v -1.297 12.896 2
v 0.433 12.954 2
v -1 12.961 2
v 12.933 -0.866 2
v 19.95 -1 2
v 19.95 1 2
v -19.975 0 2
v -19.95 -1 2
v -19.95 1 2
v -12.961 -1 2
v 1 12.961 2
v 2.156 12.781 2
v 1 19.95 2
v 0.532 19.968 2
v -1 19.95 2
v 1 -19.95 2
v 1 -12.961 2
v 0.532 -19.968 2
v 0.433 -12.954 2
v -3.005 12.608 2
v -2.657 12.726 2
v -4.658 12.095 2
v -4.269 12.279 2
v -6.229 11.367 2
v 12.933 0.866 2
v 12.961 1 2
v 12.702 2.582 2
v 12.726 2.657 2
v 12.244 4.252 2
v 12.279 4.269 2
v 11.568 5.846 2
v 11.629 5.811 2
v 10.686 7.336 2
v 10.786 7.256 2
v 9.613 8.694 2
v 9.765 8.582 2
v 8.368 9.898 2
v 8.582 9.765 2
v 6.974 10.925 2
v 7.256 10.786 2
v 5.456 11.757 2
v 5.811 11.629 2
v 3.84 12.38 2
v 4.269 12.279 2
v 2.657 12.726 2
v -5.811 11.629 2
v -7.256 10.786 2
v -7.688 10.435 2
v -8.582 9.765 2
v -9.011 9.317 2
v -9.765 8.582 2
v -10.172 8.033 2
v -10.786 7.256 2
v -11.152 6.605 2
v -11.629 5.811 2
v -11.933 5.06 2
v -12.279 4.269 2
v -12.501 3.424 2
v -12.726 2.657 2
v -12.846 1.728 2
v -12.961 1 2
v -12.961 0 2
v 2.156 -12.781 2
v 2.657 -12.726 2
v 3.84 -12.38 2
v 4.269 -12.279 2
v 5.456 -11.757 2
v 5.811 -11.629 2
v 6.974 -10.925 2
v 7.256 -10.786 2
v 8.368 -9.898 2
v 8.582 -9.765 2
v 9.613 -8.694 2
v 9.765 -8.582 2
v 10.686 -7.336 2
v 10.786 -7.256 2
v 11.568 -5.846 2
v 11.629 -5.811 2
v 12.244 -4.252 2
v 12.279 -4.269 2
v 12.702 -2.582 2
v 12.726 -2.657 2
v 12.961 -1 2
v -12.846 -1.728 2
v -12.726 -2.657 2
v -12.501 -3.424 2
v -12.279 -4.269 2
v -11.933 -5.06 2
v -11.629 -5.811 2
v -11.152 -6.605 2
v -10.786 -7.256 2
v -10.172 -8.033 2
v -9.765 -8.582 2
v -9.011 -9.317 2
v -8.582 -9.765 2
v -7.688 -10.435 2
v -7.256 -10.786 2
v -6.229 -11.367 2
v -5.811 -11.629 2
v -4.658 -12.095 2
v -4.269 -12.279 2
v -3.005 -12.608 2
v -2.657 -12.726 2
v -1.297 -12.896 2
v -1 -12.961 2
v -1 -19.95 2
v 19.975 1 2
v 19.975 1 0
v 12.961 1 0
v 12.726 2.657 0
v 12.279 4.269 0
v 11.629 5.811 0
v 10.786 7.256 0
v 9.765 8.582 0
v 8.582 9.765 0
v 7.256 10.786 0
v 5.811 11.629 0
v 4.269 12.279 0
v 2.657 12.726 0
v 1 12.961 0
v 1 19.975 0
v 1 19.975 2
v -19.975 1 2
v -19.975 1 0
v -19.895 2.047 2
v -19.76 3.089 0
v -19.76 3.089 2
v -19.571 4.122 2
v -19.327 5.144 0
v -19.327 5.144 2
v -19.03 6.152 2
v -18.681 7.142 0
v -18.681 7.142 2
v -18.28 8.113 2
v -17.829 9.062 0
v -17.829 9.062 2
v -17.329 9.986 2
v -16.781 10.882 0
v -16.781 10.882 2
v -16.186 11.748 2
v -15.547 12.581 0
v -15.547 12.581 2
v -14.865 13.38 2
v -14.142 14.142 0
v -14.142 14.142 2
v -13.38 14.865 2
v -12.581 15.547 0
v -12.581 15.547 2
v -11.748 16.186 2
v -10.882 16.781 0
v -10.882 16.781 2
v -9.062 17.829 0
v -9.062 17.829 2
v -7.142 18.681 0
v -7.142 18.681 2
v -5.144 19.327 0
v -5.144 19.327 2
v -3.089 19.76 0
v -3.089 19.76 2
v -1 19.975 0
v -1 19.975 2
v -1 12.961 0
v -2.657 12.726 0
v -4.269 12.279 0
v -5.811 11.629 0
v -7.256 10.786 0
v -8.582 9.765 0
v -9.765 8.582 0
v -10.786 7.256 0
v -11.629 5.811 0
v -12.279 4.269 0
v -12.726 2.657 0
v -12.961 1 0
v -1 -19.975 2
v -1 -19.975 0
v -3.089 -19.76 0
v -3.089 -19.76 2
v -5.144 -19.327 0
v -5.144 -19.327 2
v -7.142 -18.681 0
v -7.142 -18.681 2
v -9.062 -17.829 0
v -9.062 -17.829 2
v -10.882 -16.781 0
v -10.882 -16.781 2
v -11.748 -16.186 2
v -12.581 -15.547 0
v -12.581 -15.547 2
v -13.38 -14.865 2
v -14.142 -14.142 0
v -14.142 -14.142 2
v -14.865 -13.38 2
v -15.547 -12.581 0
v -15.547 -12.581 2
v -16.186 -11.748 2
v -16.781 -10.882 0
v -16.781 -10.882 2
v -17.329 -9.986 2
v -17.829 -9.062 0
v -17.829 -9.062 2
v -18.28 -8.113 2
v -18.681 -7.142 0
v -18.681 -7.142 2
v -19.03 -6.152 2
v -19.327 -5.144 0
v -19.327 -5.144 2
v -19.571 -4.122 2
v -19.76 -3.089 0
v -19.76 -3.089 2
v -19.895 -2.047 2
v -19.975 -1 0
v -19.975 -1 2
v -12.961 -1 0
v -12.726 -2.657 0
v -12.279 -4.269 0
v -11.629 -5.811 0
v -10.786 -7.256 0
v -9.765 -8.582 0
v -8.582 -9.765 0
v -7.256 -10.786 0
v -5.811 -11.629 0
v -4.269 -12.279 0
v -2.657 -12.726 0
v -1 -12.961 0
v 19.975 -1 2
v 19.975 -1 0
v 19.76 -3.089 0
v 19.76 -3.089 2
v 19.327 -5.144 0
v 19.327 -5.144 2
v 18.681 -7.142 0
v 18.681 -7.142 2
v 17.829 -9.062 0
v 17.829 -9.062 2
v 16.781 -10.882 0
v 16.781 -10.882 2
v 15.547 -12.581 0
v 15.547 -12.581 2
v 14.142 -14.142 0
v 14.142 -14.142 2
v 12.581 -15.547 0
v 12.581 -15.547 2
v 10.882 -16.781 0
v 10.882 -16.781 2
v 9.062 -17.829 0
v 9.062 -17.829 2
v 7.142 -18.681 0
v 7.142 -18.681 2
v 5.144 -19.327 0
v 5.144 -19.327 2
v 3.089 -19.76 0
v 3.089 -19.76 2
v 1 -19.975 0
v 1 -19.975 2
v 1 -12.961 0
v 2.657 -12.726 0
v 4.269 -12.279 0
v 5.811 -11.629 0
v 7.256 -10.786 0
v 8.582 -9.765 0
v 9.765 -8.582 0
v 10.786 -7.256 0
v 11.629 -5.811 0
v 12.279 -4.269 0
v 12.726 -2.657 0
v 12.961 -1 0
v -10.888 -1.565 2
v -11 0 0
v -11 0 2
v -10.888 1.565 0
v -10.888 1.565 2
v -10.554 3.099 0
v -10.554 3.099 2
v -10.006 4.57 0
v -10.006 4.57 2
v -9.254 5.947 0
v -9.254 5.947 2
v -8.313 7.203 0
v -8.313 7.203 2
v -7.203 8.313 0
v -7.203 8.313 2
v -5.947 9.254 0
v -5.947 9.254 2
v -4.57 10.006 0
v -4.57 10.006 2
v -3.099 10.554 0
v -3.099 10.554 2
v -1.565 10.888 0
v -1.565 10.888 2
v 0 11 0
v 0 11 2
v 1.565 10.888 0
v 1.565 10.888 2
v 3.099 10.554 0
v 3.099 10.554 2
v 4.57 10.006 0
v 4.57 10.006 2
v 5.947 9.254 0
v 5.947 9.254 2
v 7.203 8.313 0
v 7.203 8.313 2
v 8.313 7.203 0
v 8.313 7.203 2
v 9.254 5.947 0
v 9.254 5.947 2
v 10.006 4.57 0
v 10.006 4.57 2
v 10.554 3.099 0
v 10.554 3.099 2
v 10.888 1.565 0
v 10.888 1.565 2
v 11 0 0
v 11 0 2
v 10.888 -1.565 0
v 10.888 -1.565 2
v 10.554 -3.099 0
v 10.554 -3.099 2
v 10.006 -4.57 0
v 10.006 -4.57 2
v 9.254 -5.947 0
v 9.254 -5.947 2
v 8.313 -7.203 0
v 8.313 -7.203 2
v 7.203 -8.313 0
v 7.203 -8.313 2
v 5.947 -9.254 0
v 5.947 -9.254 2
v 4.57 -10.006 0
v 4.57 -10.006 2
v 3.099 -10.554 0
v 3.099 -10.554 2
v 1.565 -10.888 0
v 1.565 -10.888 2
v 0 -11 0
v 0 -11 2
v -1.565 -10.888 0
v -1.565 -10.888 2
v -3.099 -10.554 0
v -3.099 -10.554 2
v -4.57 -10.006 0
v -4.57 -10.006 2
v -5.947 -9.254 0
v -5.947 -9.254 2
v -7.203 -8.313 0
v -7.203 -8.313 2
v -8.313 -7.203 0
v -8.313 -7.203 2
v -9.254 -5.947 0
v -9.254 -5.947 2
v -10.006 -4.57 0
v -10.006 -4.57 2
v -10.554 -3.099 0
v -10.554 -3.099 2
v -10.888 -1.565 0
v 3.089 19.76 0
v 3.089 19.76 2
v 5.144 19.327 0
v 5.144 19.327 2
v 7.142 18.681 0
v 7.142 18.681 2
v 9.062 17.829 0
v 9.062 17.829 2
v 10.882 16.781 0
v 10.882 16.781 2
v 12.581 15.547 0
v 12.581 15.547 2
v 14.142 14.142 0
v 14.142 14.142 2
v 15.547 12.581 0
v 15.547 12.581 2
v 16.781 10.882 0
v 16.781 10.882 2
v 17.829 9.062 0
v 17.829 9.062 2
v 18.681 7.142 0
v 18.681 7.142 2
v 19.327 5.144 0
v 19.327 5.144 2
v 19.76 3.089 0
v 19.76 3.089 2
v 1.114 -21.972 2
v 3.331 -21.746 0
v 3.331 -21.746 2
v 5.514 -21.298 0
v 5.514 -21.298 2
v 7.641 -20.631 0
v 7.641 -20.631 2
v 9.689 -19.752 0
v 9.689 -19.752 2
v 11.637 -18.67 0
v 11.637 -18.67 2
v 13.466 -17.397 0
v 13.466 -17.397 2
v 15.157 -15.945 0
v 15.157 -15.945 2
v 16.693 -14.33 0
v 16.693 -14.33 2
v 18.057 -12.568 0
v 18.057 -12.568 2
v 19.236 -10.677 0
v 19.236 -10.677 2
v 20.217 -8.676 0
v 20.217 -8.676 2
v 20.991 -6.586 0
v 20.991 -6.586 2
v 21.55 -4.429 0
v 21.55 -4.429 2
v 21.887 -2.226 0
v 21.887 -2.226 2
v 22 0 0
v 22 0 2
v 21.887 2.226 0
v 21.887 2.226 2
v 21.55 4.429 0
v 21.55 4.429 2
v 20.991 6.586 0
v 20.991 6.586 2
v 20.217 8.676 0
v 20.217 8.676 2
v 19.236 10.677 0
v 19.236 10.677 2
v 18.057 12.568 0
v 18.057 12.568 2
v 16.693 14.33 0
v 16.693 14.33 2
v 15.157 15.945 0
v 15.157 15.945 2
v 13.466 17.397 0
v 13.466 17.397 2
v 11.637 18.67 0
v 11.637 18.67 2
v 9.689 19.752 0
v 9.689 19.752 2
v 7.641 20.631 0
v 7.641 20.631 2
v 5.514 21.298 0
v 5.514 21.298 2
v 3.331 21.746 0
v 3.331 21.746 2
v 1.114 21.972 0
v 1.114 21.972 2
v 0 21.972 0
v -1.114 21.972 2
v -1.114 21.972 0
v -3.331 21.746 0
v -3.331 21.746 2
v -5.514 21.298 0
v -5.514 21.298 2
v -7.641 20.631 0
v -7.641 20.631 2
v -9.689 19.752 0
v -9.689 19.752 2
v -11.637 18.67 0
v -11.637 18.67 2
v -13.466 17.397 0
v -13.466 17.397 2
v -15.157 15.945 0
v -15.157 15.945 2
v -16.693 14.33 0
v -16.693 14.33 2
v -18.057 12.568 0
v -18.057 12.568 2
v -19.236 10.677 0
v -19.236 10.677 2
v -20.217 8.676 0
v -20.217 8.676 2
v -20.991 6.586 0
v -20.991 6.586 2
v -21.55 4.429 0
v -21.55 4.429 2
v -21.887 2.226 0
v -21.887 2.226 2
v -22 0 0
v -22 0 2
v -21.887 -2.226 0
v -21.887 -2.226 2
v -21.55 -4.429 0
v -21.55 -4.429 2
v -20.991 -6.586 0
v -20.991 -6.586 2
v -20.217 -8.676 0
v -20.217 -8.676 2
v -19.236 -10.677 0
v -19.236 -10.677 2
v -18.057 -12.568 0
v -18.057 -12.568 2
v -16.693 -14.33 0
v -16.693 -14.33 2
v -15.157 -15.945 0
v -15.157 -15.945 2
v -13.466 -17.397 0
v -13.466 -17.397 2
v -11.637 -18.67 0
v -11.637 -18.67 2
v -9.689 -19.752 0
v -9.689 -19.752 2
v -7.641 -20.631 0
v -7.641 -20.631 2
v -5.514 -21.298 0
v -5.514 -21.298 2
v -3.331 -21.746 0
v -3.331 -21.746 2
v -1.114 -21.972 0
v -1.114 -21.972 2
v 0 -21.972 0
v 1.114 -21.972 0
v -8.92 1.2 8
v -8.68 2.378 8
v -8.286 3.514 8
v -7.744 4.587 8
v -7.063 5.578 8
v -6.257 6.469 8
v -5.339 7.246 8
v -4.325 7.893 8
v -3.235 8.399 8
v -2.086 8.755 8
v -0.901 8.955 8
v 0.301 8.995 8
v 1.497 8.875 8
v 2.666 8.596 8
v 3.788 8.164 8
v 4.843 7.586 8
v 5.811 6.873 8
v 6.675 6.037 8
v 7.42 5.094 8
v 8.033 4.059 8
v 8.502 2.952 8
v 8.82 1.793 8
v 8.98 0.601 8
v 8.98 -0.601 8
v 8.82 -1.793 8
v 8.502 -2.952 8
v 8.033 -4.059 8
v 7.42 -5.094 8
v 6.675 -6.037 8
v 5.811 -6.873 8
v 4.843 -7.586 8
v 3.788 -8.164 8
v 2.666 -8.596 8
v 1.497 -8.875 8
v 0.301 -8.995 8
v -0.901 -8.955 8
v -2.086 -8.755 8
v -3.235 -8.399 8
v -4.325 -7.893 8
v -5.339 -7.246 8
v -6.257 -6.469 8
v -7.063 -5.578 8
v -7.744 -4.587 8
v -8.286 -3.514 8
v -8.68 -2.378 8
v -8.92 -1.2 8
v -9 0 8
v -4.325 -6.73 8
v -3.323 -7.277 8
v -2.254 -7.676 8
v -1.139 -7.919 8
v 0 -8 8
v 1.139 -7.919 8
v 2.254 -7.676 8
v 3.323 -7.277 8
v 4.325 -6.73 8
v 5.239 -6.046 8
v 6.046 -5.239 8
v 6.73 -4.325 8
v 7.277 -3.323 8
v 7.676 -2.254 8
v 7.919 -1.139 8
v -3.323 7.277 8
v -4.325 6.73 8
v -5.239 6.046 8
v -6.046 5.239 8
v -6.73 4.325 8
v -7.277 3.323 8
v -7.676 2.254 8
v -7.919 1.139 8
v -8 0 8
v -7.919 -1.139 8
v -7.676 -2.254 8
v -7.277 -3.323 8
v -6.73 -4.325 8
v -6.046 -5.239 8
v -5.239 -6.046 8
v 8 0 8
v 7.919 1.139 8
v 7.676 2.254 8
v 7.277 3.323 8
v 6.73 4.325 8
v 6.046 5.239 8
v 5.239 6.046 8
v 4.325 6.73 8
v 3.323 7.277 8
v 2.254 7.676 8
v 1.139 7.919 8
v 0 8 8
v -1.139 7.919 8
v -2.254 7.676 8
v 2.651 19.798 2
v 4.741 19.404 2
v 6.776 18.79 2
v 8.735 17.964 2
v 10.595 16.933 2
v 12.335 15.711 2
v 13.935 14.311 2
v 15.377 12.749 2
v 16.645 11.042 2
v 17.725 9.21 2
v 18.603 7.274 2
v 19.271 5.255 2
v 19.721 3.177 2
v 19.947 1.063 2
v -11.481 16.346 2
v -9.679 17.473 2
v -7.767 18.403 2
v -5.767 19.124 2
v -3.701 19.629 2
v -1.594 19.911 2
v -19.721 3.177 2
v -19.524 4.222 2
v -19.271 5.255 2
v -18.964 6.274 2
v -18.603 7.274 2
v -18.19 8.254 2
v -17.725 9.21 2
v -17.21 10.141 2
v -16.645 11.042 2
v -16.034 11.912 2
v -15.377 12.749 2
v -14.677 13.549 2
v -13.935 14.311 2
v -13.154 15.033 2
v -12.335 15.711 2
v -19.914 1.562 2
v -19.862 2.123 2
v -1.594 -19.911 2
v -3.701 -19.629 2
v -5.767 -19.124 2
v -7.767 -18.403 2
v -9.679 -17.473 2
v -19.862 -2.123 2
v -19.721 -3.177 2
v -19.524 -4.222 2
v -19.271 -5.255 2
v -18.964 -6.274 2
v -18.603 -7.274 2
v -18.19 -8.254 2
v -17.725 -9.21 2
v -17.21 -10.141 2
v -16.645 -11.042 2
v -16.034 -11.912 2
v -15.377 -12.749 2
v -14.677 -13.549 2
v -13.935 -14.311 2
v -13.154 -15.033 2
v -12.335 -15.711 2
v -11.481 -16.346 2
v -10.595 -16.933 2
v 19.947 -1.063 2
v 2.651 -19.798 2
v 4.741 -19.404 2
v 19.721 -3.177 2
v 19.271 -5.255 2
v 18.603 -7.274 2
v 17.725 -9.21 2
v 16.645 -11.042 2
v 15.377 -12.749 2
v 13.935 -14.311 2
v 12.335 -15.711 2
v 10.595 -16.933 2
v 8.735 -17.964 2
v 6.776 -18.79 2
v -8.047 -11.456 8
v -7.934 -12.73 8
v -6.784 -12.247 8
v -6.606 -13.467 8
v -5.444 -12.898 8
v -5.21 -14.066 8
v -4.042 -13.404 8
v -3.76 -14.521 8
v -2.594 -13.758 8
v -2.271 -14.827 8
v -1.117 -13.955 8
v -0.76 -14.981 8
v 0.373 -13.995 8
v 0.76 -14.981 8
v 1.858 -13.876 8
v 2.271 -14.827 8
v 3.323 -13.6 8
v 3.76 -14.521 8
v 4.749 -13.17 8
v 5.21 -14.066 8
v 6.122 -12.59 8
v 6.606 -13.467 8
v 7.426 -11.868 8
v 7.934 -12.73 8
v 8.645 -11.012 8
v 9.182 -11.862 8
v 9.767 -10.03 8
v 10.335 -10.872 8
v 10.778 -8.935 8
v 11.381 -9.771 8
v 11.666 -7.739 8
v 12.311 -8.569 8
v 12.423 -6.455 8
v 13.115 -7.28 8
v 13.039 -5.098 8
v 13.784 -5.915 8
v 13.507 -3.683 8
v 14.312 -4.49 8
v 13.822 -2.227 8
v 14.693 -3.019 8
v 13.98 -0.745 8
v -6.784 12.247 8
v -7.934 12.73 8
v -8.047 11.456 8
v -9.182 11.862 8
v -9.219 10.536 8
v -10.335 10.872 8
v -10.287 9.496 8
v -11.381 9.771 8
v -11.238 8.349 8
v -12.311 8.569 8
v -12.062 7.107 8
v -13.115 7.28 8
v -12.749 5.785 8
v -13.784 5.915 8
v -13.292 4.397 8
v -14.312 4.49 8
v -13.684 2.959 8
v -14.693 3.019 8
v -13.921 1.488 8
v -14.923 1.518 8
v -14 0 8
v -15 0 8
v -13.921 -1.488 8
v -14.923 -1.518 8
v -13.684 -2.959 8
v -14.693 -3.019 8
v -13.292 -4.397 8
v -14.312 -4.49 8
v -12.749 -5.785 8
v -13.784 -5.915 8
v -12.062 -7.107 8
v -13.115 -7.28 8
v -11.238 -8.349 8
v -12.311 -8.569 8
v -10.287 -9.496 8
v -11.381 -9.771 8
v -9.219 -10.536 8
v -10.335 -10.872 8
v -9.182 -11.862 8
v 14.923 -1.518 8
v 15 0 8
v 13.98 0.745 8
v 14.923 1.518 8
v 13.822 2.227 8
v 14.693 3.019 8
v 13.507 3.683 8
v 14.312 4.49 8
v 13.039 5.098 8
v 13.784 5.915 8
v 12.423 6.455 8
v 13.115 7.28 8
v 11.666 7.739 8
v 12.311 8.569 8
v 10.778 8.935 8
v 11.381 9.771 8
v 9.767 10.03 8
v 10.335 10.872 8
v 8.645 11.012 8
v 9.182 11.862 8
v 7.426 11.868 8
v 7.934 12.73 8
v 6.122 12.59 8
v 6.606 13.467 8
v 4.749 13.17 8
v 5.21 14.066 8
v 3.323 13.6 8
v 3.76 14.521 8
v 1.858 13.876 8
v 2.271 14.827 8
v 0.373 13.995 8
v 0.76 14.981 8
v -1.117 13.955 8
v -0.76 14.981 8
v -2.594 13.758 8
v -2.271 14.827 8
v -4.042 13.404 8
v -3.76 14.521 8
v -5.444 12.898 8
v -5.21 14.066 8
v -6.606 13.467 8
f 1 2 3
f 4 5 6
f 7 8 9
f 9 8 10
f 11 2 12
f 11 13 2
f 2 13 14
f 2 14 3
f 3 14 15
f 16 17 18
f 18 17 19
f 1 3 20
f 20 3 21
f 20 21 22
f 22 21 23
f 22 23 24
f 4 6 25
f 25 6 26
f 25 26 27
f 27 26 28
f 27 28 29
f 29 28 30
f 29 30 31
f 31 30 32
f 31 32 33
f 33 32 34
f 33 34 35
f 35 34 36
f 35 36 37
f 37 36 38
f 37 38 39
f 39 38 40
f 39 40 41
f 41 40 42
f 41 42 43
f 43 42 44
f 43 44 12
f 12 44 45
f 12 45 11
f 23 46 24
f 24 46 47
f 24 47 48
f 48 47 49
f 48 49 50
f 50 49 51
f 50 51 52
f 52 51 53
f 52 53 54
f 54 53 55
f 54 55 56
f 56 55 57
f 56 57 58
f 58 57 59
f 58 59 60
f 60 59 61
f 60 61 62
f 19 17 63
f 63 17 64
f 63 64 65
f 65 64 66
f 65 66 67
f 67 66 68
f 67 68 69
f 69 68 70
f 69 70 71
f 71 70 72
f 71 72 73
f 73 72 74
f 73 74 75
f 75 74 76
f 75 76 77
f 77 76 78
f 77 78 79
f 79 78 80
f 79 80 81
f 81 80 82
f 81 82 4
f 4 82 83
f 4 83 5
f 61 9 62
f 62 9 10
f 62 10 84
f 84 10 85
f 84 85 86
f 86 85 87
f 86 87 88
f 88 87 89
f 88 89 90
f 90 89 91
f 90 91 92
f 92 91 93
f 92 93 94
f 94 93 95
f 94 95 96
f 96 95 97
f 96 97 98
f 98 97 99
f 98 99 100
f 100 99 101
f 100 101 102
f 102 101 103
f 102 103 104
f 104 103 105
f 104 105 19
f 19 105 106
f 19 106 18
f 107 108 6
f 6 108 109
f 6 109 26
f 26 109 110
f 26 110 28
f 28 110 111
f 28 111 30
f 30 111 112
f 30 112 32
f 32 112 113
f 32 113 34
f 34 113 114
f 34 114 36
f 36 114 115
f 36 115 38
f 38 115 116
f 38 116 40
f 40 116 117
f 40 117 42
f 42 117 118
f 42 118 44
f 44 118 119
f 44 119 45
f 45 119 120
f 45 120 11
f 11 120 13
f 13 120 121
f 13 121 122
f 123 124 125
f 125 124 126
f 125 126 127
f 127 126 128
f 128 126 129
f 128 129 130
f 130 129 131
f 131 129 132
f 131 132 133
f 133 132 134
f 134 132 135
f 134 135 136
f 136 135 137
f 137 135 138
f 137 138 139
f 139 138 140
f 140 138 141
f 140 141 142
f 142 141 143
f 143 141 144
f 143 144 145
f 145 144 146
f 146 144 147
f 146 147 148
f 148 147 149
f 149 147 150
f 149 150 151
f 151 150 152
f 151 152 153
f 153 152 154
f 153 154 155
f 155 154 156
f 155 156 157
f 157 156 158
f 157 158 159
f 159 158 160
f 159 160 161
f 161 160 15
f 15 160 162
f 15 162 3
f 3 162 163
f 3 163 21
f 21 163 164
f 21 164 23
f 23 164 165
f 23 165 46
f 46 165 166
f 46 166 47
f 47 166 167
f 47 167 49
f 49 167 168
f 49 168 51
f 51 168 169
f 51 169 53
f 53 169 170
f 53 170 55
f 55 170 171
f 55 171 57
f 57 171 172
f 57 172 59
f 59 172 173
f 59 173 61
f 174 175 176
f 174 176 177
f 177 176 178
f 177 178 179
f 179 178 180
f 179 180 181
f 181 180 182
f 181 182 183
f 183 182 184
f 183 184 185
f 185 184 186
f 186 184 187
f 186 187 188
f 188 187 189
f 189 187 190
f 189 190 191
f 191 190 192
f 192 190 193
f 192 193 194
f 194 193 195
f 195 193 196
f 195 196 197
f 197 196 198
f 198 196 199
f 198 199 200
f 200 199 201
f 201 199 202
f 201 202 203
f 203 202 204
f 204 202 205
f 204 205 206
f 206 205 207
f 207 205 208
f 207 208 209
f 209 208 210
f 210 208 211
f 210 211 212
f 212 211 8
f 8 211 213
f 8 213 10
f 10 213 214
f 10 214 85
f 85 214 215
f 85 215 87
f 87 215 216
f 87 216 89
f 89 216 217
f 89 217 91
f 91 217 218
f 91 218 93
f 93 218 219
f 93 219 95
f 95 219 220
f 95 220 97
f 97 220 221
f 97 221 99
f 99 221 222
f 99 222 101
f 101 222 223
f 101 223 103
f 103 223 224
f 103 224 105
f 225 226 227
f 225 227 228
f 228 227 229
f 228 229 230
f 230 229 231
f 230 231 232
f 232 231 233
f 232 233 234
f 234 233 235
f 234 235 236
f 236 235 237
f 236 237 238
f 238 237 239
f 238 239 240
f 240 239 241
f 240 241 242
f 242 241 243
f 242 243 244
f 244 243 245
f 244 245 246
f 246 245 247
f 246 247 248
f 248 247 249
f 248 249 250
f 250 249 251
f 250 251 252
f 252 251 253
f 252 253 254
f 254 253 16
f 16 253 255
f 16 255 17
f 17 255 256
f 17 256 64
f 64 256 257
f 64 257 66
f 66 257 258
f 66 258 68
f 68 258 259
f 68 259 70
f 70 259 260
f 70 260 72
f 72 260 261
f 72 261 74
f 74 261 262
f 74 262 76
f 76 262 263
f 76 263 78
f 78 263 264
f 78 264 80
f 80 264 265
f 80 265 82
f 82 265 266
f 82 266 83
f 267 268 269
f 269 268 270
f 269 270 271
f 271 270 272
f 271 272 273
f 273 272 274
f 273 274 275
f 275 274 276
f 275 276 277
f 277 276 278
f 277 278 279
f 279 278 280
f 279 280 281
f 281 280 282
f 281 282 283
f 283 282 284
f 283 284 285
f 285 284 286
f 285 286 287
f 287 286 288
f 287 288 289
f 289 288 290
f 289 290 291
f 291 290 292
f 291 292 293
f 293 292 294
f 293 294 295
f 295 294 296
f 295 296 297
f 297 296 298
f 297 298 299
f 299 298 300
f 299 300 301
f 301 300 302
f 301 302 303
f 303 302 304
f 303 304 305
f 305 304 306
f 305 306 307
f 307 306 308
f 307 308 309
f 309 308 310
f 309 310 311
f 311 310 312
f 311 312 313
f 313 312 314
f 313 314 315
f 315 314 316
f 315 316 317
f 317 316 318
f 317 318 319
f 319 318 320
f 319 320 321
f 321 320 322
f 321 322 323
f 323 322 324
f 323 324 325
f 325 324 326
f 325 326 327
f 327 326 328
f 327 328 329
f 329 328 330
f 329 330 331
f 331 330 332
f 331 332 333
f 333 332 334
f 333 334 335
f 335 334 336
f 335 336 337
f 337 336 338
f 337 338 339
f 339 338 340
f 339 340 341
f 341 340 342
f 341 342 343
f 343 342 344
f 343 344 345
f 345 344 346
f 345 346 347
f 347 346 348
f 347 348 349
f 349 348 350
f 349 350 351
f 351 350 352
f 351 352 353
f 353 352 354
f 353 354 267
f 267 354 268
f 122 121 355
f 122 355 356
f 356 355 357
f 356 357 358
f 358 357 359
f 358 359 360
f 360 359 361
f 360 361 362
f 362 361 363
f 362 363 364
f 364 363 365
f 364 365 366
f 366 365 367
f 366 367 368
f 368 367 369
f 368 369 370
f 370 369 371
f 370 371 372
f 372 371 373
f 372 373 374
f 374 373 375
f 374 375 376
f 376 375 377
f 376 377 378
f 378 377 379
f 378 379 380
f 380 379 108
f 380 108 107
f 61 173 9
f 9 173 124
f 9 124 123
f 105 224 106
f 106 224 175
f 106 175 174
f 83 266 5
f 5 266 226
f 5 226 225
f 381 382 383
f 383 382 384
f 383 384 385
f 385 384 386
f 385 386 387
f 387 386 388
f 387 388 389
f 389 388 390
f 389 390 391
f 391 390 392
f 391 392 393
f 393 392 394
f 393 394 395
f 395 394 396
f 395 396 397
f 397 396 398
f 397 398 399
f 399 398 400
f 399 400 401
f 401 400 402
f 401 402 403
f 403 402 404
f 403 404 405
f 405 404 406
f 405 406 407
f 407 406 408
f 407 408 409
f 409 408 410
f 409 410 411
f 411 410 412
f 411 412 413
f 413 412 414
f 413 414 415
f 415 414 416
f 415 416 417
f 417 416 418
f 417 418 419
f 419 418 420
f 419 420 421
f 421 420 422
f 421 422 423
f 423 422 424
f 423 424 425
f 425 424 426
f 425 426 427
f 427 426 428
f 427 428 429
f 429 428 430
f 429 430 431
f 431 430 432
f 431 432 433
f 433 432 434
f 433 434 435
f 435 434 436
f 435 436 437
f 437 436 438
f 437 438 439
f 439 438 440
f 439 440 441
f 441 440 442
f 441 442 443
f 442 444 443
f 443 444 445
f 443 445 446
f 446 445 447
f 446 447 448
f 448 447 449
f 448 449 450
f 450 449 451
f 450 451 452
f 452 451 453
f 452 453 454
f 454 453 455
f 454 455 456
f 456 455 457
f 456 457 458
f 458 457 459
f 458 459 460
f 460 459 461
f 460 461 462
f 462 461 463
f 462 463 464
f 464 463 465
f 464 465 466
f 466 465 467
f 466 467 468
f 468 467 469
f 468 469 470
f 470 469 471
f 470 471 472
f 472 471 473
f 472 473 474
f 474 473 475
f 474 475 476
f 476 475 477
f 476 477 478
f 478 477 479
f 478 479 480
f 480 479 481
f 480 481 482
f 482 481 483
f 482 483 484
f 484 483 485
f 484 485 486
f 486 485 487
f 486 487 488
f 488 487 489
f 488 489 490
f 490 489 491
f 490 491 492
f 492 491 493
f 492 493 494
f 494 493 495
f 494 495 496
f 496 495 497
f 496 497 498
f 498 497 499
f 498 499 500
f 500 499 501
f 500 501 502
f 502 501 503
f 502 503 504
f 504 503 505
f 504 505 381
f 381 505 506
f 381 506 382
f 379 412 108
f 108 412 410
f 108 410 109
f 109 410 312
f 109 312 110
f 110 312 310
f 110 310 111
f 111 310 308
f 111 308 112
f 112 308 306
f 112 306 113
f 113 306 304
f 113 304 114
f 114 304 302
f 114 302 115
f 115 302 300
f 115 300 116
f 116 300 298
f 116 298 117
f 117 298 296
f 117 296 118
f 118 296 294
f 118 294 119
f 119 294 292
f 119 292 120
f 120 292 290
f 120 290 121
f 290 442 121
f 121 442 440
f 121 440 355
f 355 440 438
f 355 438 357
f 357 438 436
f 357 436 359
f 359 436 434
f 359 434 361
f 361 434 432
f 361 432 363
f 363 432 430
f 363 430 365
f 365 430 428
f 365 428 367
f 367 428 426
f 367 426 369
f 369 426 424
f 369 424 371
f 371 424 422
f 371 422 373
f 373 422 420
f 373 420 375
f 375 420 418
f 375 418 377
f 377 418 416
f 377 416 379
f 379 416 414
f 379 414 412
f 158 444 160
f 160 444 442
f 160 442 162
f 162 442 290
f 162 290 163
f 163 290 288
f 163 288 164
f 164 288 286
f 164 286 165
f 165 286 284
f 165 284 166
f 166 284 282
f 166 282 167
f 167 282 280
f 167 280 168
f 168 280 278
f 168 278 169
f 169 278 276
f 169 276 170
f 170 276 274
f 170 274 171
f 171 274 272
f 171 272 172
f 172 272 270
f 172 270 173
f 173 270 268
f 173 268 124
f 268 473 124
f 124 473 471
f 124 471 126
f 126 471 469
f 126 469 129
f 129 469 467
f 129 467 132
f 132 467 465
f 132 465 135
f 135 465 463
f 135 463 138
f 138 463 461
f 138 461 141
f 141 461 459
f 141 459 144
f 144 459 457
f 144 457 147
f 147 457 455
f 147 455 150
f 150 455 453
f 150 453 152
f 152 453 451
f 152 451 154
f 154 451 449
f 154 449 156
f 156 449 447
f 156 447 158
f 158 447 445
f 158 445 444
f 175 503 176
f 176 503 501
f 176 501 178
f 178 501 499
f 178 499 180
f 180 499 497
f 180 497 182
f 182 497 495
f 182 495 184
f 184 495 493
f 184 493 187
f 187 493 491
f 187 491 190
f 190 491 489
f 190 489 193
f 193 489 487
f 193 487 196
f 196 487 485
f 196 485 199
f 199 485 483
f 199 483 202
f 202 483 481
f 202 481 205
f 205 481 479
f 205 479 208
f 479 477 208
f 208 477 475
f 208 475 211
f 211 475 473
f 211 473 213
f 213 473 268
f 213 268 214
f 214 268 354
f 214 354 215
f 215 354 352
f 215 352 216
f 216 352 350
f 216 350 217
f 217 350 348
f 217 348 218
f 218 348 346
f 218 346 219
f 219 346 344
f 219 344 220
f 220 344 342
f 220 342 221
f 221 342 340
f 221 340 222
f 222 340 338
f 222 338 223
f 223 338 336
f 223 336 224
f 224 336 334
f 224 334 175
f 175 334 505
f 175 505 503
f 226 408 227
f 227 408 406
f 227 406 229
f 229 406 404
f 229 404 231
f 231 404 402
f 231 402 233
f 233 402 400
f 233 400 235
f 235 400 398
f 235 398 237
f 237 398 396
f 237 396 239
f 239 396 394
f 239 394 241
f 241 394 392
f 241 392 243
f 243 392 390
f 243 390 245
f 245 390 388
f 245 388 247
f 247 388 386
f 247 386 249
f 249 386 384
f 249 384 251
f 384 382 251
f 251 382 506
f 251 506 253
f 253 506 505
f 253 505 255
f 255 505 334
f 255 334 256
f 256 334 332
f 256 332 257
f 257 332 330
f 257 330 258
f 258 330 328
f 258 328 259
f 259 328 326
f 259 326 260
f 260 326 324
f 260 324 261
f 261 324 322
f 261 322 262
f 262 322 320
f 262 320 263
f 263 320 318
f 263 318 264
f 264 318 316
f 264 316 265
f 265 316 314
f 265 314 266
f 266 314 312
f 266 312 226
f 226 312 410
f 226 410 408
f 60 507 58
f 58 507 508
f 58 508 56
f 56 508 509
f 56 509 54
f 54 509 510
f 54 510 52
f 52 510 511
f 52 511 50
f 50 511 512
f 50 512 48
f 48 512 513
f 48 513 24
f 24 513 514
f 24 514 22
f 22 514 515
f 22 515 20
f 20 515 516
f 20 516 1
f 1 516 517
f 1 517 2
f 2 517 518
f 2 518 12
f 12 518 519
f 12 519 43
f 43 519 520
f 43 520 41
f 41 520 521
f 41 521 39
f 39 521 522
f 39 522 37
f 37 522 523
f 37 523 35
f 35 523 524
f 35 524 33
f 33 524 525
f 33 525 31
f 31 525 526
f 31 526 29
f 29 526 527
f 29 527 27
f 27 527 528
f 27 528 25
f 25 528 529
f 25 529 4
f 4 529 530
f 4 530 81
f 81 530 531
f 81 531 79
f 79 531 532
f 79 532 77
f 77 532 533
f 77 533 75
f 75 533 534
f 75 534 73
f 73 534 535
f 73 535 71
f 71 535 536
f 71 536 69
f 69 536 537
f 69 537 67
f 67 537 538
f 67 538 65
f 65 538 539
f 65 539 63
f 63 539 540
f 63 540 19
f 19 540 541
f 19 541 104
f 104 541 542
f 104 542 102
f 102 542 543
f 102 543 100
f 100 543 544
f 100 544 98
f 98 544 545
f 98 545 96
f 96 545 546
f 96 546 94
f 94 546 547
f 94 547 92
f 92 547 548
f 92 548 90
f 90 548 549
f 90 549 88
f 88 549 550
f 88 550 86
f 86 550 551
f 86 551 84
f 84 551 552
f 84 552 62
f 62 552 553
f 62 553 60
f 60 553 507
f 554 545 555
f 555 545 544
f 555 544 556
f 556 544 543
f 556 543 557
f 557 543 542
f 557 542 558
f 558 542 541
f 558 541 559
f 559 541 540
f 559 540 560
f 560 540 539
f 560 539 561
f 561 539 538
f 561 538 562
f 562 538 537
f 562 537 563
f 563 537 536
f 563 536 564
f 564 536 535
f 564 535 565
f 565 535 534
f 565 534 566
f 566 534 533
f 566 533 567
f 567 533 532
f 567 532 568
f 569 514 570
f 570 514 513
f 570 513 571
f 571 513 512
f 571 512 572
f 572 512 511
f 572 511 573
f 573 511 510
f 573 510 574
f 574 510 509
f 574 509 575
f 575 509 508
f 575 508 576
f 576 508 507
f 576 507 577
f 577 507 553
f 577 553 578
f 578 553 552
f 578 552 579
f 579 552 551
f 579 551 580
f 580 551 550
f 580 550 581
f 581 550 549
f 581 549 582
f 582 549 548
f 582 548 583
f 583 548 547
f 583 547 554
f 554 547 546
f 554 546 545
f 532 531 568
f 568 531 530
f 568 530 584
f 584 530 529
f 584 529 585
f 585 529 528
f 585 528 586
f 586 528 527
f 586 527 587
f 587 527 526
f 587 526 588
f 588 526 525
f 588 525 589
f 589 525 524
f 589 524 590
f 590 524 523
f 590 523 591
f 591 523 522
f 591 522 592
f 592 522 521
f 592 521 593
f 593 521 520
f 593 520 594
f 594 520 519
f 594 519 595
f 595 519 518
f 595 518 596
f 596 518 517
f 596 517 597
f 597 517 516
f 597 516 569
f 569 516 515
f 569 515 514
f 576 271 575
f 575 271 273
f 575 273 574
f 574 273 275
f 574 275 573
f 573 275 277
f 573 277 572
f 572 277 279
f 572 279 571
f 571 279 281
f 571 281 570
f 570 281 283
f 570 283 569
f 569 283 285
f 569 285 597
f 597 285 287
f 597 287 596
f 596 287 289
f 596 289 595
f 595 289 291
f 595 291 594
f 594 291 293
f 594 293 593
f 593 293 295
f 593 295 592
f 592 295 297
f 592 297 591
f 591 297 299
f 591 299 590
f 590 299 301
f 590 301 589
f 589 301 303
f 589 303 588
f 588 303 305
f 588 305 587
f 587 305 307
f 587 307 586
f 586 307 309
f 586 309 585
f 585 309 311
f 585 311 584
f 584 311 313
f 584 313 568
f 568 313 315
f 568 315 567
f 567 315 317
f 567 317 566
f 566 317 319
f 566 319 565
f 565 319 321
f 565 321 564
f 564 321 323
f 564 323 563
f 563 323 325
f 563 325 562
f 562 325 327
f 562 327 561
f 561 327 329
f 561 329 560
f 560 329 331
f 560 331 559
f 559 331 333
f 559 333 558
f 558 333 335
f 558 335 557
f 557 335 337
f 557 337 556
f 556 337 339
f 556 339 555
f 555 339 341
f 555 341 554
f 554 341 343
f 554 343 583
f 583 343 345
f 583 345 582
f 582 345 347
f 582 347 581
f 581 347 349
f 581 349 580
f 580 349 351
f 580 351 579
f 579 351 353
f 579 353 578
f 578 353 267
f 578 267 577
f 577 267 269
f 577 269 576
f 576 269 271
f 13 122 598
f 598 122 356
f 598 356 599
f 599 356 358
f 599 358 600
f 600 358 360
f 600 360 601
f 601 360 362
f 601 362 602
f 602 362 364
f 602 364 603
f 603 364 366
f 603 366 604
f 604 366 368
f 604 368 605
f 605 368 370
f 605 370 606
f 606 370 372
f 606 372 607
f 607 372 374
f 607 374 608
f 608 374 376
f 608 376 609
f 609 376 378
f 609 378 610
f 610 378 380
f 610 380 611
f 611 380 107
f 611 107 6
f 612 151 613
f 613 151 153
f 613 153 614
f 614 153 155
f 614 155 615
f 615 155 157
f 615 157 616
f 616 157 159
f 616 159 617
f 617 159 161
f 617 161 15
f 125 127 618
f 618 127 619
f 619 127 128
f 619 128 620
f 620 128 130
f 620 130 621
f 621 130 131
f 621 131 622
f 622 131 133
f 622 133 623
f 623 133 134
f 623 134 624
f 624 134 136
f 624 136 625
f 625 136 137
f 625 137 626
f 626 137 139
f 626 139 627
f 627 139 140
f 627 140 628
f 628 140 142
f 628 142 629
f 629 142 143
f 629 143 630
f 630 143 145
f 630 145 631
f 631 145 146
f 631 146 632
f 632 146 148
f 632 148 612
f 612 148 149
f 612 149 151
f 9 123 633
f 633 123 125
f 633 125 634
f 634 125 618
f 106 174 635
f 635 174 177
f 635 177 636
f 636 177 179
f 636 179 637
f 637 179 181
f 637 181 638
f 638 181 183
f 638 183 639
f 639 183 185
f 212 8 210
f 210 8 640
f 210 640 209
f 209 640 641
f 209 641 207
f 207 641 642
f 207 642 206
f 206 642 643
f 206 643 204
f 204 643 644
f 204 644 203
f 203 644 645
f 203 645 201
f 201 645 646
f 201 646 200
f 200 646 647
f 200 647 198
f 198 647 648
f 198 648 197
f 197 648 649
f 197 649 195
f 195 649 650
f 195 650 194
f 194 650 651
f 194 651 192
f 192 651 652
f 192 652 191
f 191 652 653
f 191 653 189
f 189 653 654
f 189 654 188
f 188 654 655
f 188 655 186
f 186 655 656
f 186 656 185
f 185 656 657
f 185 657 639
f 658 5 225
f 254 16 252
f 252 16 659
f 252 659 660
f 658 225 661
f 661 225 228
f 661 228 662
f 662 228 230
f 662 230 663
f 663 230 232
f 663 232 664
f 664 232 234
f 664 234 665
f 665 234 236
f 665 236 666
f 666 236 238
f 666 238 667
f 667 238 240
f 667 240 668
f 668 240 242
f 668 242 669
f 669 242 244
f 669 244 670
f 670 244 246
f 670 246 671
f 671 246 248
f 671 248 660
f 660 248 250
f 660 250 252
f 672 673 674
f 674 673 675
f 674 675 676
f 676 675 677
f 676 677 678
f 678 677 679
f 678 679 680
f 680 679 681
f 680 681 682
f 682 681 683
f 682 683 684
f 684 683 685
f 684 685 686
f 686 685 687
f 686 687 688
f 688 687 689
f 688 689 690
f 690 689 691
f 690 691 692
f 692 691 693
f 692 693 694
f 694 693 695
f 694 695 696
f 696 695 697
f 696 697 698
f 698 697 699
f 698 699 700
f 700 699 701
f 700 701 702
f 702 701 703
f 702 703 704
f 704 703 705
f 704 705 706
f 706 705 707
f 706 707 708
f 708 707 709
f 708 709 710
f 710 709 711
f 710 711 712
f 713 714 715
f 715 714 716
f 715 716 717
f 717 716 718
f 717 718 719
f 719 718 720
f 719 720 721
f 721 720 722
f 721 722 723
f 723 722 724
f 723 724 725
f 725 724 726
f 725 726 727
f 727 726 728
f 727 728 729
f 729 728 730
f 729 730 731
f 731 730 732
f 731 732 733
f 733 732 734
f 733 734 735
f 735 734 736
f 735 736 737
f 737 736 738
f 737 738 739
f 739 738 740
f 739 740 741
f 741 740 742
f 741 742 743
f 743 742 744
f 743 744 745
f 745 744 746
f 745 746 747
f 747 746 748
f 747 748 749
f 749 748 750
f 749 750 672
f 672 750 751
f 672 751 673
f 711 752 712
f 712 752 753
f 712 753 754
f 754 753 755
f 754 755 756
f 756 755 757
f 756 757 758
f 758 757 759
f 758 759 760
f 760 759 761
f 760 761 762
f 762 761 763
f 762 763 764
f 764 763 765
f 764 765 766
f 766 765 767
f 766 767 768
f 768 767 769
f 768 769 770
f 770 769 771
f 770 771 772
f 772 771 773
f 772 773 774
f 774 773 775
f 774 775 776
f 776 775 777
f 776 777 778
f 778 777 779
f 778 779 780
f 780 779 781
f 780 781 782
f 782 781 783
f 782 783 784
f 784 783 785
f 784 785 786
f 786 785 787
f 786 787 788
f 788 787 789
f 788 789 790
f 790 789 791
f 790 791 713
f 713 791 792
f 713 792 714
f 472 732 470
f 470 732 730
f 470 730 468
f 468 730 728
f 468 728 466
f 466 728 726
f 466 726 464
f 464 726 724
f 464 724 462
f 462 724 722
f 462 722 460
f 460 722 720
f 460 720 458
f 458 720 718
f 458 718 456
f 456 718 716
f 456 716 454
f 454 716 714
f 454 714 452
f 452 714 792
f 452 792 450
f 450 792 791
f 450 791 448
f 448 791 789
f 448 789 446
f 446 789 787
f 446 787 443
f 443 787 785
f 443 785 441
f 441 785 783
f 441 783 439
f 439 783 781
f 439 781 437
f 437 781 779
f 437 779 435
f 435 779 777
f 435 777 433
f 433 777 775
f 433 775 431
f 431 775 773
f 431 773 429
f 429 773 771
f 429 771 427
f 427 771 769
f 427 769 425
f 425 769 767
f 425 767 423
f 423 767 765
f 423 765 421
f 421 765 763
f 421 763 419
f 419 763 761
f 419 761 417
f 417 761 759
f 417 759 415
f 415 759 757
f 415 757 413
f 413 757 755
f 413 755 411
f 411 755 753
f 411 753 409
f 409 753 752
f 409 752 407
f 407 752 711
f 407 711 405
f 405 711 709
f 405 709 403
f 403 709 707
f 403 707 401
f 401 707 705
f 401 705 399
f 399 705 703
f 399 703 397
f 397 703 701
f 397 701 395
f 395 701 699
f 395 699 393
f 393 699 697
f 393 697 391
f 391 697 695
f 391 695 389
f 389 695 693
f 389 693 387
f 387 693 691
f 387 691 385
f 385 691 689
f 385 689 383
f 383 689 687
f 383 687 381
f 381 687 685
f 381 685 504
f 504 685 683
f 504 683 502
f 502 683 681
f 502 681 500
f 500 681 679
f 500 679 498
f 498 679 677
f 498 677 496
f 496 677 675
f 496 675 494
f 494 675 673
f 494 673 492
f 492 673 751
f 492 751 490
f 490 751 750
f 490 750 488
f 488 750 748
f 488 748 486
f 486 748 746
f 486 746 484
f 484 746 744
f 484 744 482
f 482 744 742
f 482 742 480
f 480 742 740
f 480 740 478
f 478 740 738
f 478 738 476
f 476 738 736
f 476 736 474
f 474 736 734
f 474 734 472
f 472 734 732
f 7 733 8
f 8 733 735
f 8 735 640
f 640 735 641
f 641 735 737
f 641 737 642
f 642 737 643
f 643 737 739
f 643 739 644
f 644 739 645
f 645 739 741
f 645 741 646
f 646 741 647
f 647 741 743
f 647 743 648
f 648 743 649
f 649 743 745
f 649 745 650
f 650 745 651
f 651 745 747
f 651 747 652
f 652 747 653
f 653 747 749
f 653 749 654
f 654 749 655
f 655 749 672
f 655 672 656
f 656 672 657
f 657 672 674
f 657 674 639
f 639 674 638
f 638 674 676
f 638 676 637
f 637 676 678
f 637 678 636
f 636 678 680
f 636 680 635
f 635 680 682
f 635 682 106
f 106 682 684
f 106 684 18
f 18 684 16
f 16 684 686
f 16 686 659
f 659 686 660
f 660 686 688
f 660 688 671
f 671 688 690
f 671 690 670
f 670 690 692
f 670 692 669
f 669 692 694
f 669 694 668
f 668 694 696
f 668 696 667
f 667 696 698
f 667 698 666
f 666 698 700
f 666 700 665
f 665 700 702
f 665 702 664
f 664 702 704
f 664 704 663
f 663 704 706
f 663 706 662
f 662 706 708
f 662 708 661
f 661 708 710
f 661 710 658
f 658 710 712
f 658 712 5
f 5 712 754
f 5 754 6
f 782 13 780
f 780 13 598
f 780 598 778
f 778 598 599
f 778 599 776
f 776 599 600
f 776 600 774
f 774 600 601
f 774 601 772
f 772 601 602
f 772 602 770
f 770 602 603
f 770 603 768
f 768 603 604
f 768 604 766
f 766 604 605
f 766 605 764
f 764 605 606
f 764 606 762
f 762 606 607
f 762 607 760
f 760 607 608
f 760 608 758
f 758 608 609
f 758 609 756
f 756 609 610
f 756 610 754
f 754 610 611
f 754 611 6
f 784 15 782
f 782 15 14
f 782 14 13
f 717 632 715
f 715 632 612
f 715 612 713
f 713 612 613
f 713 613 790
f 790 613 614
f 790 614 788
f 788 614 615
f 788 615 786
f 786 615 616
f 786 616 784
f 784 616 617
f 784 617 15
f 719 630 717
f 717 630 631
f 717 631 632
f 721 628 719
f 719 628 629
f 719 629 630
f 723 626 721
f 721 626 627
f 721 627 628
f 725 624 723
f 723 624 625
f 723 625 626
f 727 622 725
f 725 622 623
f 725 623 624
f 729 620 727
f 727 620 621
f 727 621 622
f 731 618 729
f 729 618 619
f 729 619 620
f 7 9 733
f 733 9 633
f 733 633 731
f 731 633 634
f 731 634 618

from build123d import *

# Parameters (mm, degrees)
SKETCH_2_R      = 22
SKETCH_2_R_2    = 11
EXTRUDE_1_DEPTH = 2


with BuildPart() as part:
    # Эскиз2 → Бобышка-Вытянуть1 (new body)
    with BuildSketch(Plane.XY):
        Circle(SKETCH_2_R)
        with BuildLine():
            Line((12.961481397, -1), (19.974984355, -1))
            ThreePointArc((19.974984355, -1), (14.142135624, -14.142135624), (1, -19.974984355))
            Line((1, -19.974984355), (1, -12.961481397))
            ThreePointArc((1, -12.961481397), (9.192388155, -9.192388155), (12.961481397, -1))
        make_face(mode=Mode.SUBTRACT)
        with BuildLine():
            Line((19.974984355, 1), (12.961481397, 1))
            ThreePointArc((12.961481397, 1), (9.192388155, 9.192388155), (1, 12.961481397))
            Line((1, 12.961481397), (1, 19.974984355))
            ThreePointArc((1, 19.974984355), (14.142135624, 14.142135624), (19.974984355, 1))
        make_face(mode=Mode.SUBTRACT)
        with BuildLine():
            Line((-1, 19.974984355), (-1, 12.961481397))
            ThreePointArc((-1, 12.961481397), (-9.192388155, 9.192388155), (-12.961481397, 1))
            Line((-12.961481397, 1), (-19.974984355, 1))
            ThreePointArc((-19.974984355, 1), (-14.142135624, 14.142135624), (-1, 19.974984355))
        make_face(mode=Mode.SUBTRACT)
        with BuildLine():
            Line((-19.974984355, -1), (-12.961481397, -1))
            ThreePointArc((-12.961481397, -1), (-9.192388155, -9.192388155), (-1, -12.961481397))
            Line((-1, -12.961481397), (-1, -19.974984355))
            ThreePointArc((-1, -19.974984355), (-14.142135624, -14.142135624), (-19.974984355, -1))
        make_face(mode=Mode.SUBTRACT)
        Circle(SKETCH_2_R_2, mode=Mode.SUBTRACT)
    extrude(amount=EXTRUDE_1_DEPTH)

    # Эскиз4 → Повернуть1 (revolve)
    with BuildSketch(Plane(origin=(0, 0, 0), x_dir=(1, 0, 0), z_dir=(0, 1, 0)), mode=Mode.PRIVATE) as revolve_1_sk:
        Polygon((11, -2), (8, -8), (9, -8), (12.961481397, -2), align=None)
        Polygon((14, -8), (19.974984355, -2), (22, -2), (15, -8), align=None)
    revolve(revolve_1_sk.sketch.rotate(Axis((0, 0, -0.4), (0, 0, 1)), 180), axis=Axis((0, 0, -0.4), (0, 0, 1)))


solid = part.part
